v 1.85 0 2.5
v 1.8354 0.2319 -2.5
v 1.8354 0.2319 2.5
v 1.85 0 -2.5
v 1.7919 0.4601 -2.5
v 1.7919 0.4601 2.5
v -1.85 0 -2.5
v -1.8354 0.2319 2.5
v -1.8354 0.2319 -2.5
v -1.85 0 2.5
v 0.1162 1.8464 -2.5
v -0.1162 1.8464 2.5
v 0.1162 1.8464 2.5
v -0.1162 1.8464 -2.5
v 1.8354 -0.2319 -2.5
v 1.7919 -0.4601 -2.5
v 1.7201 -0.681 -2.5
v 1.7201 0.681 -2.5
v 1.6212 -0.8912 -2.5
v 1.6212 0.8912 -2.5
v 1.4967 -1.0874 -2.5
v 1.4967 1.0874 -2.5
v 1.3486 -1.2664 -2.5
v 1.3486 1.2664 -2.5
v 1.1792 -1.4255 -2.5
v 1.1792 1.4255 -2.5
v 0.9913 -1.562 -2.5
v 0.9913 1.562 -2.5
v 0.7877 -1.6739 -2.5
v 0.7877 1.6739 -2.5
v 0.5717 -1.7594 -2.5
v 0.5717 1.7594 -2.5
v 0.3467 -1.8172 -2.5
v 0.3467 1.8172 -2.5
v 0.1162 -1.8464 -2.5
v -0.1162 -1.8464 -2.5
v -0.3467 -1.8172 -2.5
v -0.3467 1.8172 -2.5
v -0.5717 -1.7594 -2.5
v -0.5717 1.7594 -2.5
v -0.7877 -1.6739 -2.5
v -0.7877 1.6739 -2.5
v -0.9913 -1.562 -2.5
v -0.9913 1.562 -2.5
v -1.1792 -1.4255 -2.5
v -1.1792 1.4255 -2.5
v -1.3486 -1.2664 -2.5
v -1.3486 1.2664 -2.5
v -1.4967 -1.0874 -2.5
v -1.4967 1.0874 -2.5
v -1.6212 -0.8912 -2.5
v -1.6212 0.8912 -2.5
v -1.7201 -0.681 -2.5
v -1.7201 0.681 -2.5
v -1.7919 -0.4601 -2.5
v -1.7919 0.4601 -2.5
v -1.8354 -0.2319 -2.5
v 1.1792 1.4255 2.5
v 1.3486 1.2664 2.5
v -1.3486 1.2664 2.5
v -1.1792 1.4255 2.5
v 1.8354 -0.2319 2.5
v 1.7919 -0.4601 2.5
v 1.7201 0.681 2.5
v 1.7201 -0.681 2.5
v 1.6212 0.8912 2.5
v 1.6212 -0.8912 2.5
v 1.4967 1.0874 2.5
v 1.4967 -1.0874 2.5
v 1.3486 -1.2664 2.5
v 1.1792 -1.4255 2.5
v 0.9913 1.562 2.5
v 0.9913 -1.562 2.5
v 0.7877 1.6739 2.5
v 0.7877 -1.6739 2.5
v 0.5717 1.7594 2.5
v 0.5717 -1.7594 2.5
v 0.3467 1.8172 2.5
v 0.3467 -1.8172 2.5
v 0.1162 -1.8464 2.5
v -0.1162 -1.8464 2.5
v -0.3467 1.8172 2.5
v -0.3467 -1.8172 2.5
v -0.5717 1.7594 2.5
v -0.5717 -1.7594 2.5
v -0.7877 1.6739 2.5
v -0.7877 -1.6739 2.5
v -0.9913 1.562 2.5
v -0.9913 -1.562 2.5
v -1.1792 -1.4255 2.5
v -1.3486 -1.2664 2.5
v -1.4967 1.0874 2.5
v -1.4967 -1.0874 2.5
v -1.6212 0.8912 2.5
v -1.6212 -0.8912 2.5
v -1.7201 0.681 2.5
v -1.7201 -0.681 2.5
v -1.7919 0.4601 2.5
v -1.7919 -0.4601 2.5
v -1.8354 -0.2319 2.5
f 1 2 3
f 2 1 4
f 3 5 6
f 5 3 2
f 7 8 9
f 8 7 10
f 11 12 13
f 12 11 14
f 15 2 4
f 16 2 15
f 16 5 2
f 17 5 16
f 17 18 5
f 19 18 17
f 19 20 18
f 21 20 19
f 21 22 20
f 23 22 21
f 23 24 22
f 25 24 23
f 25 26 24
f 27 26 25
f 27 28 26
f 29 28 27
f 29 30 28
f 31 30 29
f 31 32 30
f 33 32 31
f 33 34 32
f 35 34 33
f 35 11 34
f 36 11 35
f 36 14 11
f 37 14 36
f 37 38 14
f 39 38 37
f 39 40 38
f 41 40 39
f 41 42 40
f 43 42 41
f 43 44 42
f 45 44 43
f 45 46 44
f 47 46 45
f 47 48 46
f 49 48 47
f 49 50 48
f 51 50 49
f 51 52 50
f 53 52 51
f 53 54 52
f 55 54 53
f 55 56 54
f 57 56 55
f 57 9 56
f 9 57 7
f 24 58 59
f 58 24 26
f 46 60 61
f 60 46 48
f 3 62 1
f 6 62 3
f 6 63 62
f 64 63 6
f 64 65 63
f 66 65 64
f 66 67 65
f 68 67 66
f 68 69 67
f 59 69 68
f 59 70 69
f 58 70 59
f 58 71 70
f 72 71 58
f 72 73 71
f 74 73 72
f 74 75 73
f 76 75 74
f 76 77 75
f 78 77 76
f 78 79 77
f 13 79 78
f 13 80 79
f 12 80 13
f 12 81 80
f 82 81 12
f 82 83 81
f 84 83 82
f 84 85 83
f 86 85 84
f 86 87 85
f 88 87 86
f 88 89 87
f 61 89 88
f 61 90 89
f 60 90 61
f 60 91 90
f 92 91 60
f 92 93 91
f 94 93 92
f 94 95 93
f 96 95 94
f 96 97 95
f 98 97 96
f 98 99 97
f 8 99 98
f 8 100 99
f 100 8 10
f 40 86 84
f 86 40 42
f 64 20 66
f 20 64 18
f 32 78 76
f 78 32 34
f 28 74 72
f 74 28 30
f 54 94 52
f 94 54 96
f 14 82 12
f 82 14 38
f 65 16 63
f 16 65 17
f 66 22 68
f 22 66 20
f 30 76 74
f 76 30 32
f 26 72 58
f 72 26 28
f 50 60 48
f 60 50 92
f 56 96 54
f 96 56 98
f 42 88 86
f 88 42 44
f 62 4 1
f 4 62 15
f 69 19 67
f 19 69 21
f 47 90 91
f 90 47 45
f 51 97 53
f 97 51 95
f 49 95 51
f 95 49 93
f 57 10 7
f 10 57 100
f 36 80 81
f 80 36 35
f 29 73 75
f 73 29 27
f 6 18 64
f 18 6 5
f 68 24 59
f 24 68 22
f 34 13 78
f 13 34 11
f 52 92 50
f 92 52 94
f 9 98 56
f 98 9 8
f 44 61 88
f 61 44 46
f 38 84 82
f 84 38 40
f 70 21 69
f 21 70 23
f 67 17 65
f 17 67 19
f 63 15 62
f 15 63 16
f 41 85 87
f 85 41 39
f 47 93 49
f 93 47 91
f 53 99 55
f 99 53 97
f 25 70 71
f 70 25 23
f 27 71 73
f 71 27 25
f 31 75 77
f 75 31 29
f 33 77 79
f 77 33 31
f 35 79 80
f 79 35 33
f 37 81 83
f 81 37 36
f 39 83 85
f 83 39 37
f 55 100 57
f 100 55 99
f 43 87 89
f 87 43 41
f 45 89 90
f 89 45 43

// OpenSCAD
$fn = 50;


difference() {
	union() {
		translate(v = [0, 0, -2.5000000000]) {
			cylinder(h = 5, r = 1.8500000000);
		}
	}
	union() {
		translate(v = [0, 0, -100.0000000000]) {
			cylinder(h = 200, r = 0);
		}
	}
}
